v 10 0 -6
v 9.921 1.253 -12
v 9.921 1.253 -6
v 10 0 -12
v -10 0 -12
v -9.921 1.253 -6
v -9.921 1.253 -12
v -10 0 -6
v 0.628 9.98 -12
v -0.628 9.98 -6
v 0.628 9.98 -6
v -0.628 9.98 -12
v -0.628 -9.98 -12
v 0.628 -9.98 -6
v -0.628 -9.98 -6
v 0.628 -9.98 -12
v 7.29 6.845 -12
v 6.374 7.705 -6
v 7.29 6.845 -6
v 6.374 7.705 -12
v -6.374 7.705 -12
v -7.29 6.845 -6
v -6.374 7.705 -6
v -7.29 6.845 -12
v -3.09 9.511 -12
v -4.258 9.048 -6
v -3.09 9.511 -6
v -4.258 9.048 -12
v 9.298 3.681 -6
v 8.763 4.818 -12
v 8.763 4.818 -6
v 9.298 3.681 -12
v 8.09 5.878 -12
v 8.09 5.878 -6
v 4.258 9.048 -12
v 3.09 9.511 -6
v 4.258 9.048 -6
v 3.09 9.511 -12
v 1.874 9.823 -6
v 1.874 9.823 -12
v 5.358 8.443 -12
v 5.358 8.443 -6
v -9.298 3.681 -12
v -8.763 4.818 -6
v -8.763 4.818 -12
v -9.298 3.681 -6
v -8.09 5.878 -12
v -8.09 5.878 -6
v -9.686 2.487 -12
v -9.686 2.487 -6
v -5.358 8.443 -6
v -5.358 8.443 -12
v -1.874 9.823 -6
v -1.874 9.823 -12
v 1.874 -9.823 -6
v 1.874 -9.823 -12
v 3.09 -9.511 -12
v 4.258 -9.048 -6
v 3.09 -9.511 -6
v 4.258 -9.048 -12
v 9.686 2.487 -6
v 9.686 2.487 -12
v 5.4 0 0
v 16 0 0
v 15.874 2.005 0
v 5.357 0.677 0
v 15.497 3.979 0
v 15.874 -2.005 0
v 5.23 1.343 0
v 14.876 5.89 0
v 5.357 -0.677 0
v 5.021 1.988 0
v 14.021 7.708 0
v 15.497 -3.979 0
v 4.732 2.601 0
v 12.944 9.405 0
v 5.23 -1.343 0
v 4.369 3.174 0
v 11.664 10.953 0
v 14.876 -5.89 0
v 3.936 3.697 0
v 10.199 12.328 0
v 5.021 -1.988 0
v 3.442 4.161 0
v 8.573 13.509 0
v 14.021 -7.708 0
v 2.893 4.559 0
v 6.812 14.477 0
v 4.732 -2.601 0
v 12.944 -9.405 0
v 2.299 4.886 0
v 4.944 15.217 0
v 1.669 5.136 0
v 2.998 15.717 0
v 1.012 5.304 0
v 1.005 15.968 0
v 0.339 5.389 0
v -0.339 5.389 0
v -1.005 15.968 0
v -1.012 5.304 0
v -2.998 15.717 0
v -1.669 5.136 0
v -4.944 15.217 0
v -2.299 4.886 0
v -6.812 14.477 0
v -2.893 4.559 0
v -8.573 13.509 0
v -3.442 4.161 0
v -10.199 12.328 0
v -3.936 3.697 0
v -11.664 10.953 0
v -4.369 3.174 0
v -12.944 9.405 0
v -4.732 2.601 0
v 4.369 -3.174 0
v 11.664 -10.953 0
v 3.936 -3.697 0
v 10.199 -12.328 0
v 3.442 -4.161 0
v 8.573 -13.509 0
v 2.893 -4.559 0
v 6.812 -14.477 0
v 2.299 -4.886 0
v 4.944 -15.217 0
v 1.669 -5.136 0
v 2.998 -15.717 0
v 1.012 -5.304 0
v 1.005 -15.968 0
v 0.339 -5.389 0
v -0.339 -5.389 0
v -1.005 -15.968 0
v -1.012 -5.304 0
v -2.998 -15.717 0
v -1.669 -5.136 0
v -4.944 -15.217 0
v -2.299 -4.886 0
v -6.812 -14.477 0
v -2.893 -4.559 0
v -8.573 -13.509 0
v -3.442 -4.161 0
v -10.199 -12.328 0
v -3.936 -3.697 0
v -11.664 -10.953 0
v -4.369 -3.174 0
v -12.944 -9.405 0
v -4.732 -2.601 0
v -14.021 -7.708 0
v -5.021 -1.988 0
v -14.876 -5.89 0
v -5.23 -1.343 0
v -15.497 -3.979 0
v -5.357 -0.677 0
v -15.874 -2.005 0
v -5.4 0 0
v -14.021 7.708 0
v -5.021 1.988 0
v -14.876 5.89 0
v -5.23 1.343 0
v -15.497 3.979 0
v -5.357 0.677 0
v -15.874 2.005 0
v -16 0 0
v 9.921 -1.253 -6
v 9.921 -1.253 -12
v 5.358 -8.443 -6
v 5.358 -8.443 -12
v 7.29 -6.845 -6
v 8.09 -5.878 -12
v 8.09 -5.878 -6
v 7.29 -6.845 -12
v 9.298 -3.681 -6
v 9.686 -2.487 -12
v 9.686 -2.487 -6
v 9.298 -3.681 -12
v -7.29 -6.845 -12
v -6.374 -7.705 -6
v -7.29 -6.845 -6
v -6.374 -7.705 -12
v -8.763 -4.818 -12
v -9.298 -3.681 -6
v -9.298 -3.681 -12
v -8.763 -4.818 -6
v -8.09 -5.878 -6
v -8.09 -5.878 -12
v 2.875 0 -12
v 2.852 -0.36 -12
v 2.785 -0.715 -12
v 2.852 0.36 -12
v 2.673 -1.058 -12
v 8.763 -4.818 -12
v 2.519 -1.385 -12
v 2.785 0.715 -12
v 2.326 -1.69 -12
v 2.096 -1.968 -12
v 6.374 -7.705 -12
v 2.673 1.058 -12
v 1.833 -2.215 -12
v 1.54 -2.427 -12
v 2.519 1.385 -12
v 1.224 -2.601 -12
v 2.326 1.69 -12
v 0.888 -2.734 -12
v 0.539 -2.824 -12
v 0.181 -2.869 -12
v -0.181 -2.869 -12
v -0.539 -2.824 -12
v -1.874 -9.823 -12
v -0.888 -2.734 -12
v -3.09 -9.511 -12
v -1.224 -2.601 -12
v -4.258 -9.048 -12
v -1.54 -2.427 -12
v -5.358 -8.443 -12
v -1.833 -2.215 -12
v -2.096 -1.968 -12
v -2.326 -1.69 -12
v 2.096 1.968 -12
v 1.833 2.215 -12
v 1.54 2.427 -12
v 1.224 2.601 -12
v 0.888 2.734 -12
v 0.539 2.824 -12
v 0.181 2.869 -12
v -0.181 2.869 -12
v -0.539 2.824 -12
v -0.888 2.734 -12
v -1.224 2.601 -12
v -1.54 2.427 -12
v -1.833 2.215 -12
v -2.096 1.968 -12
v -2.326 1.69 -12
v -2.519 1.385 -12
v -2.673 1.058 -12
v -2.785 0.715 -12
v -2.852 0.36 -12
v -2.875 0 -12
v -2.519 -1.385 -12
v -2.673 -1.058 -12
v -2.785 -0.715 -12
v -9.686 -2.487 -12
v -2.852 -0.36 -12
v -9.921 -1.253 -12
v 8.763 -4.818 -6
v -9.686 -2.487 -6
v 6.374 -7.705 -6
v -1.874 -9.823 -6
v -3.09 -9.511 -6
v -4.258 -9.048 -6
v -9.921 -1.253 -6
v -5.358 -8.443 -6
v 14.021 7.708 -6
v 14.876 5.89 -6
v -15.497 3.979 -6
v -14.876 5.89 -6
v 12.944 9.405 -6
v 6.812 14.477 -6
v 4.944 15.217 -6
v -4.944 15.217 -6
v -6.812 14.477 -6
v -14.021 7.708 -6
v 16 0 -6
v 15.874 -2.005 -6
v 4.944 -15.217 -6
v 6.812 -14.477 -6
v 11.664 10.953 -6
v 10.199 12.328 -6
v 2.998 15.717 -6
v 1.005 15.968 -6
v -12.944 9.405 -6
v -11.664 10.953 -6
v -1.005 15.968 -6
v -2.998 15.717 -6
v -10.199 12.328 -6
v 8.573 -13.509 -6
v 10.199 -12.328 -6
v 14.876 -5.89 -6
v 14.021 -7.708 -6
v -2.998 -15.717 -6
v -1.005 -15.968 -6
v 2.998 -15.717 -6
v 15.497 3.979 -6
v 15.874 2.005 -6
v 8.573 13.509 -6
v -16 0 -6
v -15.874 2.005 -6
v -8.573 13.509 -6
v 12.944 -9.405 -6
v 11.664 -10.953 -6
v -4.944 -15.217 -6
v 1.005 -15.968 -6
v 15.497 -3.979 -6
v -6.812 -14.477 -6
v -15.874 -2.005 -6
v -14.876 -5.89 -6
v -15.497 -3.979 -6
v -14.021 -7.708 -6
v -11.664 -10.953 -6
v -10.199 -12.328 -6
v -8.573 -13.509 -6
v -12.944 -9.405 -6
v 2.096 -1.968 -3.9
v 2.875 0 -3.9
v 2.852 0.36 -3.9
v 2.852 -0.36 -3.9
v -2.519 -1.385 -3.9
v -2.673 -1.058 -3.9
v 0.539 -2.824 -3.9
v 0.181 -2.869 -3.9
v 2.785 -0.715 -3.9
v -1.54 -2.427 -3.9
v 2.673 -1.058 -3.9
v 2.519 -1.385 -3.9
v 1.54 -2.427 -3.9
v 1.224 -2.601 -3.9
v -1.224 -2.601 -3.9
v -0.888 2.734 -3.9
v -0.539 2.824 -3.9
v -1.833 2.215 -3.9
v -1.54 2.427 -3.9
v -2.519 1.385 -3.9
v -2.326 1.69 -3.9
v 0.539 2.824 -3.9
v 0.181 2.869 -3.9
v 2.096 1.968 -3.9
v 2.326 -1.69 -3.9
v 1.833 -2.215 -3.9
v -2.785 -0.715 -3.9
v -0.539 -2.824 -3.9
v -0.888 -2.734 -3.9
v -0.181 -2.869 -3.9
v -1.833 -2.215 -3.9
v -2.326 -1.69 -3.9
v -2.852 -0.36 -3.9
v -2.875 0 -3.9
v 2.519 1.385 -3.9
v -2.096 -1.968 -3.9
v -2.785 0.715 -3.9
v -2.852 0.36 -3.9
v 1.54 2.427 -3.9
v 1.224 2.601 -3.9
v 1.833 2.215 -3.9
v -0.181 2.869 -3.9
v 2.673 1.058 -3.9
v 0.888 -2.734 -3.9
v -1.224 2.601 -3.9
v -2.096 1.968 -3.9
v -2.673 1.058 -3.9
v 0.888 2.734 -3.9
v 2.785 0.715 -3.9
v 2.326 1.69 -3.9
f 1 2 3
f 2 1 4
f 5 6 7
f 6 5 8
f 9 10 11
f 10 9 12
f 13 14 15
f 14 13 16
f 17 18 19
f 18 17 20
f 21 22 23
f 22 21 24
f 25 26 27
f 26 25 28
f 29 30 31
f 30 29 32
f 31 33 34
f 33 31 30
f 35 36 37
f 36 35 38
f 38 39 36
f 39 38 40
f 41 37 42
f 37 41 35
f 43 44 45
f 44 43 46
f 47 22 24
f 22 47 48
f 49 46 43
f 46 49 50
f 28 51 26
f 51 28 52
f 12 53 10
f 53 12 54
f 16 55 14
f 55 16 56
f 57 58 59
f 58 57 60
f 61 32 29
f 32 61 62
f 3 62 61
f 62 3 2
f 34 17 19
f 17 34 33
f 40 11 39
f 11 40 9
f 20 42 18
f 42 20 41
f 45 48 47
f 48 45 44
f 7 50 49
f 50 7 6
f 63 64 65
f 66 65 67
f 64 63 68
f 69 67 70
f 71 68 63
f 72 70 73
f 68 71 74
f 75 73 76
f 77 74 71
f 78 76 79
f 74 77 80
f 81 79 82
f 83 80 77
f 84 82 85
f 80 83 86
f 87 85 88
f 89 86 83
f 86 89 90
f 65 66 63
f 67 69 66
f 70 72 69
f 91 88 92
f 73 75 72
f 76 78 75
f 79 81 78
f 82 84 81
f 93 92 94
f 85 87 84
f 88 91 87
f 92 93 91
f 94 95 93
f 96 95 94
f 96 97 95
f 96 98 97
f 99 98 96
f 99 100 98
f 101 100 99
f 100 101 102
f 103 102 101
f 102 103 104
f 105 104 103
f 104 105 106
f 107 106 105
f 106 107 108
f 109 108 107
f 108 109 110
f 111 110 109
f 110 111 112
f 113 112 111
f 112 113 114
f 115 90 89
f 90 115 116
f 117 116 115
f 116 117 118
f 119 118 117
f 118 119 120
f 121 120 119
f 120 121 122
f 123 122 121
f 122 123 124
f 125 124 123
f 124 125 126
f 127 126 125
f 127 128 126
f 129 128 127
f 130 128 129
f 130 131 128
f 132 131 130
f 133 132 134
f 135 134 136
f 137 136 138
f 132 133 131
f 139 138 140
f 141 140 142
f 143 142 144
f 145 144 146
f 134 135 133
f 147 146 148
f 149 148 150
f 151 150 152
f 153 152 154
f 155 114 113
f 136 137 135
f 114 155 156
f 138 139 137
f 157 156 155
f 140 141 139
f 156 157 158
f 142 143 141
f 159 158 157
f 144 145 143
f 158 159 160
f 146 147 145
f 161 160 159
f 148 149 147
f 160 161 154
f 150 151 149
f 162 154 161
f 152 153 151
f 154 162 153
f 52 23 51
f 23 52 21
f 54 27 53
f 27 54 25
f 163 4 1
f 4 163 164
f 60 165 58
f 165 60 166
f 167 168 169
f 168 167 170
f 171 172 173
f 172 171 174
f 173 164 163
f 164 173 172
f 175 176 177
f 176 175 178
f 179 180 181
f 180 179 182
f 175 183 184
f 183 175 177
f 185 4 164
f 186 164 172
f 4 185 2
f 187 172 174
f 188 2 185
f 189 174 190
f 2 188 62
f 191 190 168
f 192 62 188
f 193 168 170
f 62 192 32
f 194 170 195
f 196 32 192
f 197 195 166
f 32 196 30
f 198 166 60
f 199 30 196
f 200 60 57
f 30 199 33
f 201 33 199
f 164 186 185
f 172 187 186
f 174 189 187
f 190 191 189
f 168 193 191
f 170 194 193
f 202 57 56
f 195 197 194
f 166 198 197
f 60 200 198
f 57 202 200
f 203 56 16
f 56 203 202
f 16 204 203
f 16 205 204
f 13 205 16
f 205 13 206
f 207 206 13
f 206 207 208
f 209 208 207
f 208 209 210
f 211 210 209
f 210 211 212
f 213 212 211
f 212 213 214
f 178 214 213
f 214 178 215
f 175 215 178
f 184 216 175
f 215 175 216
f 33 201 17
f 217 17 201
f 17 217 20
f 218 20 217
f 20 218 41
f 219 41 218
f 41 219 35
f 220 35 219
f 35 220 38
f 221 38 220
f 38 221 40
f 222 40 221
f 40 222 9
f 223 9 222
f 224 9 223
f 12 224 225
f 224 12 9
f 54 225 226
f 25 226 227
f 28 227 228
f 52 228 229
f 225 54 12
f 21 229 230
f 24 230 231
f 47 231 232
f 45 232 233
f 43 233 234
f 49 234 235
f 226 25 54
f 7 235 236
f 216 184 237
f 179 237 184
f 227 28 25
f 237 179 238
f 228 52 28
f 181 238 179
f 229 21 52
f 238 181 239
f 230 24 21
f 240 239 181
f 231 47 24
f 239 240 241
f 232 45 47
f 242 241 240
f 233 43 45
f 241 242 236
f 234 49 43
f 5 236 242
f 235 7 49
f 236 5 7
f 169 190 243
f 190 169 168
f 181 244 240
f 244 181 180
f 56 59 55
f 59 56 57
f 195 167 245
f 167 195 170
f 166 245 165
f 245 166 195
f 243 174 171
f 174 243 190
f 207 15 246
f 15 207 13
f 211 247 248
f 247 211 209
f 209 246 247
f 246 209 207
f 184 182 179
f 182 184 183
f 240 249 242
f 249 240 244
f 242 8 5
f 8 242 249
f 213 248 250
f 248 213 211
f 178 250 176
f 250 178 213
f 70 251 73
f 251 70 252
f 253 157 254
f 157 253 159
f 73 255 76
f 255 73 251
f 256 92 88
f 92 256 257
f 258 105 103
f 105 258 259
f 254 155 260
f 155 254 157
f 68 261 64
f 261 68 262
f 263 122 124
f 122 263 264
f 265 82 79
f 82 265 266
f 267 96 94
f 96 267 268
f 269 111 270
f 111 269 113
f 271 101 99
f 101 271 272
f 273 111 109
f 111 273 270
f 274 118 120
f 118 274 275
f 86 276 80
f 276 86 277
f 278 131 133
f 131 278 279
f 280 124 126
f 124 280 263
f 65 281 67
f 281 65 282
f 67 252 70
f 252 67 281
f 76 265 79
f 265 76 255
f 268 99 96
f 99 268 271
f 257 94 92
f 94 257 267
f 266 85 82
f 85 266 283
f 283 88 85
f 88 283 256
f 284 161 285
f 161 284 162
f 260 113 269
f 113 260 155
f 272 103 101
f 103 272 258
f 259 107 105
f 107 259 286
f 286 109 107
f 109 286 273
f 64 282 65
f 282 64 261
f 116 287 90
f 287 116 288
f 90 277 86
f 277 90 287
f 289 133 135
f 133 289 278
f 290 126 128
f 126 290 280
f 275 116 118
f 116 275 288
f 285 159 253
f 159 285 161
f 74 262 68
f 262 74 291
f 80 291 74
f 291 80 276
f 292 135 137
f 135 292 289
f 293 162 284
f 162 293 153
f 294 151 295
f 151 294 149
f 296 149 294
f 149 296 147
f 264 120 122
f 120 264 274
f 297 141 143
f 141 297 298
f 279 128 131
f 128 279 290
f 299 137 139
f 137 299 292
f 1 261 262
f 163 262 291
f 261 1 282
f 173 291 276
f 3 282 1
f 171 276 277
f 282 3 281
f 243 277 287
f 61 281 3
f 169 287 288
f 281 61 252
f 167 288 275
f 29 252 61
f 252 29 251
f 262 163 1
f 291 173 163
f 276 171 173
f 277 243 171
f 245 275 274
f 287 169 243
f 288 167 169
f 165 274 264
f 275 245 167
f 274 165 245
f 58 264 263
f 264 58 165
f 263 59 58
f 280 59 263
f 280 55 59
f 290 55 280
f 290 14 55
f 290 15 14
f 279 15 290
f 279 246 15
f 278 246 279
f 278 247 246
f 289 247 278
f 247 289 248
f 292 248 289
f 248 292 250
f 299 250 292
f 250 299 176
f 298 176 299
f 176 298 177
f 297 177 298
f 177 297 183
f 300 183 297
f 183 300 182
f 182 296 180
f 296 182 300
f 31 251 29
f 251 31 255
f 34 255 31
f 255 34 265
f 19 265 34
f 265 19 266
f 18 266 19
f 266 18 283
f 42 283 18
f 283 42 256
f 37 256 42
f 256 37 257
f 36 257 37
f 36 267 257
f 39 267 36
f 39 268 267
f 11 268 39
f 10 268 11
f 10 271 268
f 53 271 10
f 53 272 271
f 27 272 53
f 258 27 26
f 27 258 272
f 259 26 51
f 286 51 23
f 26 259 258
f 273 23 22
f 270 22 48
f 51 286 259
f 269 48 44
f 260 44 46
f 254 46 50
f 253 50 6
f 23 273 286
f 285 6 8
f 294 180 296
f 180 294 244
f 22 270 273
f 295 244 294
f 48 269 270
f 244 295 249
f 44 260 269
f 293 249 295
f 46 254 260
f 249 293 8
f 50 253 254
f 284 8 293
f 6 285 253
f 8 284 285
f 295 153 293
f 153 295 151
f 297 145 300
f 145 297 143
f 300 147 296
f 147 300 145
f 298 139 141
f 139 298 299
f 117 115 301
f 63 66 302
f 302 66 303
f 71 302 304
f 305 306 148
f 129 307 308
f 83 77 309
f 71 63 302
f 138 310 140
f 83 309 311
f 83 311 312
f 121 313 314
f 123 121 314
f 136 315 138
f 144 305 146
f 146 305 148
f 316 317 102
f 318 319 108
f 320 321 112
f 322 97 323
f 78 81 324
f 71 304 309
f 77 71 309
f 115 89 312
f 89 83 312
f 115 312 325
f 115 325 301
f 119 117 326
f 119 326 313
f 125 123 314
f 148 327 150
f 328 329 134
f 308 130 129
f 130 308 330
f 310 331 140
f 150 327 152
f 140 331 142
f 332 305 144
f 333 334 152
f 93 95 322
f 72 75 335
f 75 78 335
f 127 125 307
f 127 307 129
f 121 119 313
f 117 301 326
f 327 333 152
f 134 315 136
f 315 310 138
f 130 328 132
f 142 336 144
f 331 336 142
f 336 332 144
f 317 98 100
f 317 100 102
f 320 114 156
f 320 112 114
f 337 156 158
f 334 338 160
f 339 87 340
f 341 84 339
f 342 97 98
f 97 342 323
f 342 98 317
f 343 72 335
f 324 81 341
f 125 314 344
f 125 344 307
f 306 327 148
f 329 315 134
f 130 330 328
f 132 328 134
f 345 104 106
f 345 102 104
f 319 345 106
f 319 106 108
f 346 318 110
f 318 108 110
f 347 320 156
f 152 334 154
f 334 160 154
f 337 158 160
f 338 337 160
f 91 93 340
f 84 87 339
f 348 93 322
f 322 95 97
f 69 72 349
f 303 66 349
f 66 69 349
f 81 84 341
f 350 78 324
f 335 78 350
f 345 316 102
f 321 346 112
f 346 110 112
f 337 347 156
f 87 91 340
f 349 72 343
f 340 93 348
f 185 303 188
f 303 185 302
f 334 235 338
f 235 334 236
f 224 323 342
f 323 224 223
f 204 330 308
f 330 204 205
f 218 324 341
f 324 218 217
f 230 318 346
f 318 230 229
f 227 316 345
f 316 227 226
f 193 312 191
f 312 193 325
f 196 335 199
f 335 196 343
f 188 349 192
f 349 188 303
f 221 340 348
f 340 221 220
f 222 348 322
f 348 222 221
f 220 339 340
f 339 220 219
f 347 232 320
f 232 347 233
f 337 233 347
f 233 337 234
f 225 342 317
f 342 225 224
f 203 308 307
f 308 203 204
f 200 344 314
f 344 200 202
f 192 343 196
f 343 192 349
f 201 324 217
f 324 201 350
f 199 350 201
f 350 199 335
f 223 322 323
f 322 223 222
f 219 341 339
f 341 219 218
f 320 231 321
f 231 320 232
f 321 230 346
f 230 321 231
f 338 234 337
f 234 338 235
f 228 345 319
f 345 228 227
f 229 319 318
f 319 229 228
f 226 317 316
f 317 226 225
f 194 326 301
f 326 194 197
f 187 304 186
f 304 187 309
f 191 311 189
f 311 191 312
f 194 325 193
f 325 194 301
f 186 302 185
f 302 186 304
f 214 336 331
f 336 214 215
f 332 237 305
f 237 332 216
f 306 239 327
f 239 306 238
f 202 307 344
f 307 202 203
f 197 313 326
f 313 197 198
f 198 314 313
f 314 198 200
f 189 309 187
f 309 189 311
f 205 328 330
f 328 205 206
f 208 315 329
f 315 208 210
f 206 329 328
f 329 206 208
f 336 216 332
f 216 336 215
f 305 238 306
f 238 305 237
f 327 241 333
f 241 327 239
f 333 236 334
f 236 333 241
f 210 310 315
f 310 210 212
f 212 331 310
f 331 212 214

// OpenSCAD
$fn = 50;


difference() {
	union() {
		translate(v = [0, 0, -12.0000000000]) {
			cylinder(h = 12, r = 10.0000000000);
		}
		translate(v = [0, 0, -6.0000000000]) {
			cylinder(h = 6, r = 16.0000000000);
		}
	}
	union() {
		translate(v = [0, 0, 0]) {
			rotate(a = [0, 0, 0]) {
				difference() {
					union() {
						#translate(v = [0, 0, -12.0000000000]) {
							cylinder(h = 12, r = 2.6000000000);
						}
						#translate(v = [0, 0, -3.9000000000]) {
							cylinder(h = 3.9000000000, r1 = 2.8750000000, r2 = 5.4000000000);
						}
						#translate(v = [0, 0, -12.0000000000]) {
							cylinder(h = 12, r = 2.8750000000);
						}
						#translate(v = [0, 0, -12.0000000000]) {
							cylinder(h = 12, r = 2.6000000000);
						}
					}
					union();
				}
			}
		}
	}
}
